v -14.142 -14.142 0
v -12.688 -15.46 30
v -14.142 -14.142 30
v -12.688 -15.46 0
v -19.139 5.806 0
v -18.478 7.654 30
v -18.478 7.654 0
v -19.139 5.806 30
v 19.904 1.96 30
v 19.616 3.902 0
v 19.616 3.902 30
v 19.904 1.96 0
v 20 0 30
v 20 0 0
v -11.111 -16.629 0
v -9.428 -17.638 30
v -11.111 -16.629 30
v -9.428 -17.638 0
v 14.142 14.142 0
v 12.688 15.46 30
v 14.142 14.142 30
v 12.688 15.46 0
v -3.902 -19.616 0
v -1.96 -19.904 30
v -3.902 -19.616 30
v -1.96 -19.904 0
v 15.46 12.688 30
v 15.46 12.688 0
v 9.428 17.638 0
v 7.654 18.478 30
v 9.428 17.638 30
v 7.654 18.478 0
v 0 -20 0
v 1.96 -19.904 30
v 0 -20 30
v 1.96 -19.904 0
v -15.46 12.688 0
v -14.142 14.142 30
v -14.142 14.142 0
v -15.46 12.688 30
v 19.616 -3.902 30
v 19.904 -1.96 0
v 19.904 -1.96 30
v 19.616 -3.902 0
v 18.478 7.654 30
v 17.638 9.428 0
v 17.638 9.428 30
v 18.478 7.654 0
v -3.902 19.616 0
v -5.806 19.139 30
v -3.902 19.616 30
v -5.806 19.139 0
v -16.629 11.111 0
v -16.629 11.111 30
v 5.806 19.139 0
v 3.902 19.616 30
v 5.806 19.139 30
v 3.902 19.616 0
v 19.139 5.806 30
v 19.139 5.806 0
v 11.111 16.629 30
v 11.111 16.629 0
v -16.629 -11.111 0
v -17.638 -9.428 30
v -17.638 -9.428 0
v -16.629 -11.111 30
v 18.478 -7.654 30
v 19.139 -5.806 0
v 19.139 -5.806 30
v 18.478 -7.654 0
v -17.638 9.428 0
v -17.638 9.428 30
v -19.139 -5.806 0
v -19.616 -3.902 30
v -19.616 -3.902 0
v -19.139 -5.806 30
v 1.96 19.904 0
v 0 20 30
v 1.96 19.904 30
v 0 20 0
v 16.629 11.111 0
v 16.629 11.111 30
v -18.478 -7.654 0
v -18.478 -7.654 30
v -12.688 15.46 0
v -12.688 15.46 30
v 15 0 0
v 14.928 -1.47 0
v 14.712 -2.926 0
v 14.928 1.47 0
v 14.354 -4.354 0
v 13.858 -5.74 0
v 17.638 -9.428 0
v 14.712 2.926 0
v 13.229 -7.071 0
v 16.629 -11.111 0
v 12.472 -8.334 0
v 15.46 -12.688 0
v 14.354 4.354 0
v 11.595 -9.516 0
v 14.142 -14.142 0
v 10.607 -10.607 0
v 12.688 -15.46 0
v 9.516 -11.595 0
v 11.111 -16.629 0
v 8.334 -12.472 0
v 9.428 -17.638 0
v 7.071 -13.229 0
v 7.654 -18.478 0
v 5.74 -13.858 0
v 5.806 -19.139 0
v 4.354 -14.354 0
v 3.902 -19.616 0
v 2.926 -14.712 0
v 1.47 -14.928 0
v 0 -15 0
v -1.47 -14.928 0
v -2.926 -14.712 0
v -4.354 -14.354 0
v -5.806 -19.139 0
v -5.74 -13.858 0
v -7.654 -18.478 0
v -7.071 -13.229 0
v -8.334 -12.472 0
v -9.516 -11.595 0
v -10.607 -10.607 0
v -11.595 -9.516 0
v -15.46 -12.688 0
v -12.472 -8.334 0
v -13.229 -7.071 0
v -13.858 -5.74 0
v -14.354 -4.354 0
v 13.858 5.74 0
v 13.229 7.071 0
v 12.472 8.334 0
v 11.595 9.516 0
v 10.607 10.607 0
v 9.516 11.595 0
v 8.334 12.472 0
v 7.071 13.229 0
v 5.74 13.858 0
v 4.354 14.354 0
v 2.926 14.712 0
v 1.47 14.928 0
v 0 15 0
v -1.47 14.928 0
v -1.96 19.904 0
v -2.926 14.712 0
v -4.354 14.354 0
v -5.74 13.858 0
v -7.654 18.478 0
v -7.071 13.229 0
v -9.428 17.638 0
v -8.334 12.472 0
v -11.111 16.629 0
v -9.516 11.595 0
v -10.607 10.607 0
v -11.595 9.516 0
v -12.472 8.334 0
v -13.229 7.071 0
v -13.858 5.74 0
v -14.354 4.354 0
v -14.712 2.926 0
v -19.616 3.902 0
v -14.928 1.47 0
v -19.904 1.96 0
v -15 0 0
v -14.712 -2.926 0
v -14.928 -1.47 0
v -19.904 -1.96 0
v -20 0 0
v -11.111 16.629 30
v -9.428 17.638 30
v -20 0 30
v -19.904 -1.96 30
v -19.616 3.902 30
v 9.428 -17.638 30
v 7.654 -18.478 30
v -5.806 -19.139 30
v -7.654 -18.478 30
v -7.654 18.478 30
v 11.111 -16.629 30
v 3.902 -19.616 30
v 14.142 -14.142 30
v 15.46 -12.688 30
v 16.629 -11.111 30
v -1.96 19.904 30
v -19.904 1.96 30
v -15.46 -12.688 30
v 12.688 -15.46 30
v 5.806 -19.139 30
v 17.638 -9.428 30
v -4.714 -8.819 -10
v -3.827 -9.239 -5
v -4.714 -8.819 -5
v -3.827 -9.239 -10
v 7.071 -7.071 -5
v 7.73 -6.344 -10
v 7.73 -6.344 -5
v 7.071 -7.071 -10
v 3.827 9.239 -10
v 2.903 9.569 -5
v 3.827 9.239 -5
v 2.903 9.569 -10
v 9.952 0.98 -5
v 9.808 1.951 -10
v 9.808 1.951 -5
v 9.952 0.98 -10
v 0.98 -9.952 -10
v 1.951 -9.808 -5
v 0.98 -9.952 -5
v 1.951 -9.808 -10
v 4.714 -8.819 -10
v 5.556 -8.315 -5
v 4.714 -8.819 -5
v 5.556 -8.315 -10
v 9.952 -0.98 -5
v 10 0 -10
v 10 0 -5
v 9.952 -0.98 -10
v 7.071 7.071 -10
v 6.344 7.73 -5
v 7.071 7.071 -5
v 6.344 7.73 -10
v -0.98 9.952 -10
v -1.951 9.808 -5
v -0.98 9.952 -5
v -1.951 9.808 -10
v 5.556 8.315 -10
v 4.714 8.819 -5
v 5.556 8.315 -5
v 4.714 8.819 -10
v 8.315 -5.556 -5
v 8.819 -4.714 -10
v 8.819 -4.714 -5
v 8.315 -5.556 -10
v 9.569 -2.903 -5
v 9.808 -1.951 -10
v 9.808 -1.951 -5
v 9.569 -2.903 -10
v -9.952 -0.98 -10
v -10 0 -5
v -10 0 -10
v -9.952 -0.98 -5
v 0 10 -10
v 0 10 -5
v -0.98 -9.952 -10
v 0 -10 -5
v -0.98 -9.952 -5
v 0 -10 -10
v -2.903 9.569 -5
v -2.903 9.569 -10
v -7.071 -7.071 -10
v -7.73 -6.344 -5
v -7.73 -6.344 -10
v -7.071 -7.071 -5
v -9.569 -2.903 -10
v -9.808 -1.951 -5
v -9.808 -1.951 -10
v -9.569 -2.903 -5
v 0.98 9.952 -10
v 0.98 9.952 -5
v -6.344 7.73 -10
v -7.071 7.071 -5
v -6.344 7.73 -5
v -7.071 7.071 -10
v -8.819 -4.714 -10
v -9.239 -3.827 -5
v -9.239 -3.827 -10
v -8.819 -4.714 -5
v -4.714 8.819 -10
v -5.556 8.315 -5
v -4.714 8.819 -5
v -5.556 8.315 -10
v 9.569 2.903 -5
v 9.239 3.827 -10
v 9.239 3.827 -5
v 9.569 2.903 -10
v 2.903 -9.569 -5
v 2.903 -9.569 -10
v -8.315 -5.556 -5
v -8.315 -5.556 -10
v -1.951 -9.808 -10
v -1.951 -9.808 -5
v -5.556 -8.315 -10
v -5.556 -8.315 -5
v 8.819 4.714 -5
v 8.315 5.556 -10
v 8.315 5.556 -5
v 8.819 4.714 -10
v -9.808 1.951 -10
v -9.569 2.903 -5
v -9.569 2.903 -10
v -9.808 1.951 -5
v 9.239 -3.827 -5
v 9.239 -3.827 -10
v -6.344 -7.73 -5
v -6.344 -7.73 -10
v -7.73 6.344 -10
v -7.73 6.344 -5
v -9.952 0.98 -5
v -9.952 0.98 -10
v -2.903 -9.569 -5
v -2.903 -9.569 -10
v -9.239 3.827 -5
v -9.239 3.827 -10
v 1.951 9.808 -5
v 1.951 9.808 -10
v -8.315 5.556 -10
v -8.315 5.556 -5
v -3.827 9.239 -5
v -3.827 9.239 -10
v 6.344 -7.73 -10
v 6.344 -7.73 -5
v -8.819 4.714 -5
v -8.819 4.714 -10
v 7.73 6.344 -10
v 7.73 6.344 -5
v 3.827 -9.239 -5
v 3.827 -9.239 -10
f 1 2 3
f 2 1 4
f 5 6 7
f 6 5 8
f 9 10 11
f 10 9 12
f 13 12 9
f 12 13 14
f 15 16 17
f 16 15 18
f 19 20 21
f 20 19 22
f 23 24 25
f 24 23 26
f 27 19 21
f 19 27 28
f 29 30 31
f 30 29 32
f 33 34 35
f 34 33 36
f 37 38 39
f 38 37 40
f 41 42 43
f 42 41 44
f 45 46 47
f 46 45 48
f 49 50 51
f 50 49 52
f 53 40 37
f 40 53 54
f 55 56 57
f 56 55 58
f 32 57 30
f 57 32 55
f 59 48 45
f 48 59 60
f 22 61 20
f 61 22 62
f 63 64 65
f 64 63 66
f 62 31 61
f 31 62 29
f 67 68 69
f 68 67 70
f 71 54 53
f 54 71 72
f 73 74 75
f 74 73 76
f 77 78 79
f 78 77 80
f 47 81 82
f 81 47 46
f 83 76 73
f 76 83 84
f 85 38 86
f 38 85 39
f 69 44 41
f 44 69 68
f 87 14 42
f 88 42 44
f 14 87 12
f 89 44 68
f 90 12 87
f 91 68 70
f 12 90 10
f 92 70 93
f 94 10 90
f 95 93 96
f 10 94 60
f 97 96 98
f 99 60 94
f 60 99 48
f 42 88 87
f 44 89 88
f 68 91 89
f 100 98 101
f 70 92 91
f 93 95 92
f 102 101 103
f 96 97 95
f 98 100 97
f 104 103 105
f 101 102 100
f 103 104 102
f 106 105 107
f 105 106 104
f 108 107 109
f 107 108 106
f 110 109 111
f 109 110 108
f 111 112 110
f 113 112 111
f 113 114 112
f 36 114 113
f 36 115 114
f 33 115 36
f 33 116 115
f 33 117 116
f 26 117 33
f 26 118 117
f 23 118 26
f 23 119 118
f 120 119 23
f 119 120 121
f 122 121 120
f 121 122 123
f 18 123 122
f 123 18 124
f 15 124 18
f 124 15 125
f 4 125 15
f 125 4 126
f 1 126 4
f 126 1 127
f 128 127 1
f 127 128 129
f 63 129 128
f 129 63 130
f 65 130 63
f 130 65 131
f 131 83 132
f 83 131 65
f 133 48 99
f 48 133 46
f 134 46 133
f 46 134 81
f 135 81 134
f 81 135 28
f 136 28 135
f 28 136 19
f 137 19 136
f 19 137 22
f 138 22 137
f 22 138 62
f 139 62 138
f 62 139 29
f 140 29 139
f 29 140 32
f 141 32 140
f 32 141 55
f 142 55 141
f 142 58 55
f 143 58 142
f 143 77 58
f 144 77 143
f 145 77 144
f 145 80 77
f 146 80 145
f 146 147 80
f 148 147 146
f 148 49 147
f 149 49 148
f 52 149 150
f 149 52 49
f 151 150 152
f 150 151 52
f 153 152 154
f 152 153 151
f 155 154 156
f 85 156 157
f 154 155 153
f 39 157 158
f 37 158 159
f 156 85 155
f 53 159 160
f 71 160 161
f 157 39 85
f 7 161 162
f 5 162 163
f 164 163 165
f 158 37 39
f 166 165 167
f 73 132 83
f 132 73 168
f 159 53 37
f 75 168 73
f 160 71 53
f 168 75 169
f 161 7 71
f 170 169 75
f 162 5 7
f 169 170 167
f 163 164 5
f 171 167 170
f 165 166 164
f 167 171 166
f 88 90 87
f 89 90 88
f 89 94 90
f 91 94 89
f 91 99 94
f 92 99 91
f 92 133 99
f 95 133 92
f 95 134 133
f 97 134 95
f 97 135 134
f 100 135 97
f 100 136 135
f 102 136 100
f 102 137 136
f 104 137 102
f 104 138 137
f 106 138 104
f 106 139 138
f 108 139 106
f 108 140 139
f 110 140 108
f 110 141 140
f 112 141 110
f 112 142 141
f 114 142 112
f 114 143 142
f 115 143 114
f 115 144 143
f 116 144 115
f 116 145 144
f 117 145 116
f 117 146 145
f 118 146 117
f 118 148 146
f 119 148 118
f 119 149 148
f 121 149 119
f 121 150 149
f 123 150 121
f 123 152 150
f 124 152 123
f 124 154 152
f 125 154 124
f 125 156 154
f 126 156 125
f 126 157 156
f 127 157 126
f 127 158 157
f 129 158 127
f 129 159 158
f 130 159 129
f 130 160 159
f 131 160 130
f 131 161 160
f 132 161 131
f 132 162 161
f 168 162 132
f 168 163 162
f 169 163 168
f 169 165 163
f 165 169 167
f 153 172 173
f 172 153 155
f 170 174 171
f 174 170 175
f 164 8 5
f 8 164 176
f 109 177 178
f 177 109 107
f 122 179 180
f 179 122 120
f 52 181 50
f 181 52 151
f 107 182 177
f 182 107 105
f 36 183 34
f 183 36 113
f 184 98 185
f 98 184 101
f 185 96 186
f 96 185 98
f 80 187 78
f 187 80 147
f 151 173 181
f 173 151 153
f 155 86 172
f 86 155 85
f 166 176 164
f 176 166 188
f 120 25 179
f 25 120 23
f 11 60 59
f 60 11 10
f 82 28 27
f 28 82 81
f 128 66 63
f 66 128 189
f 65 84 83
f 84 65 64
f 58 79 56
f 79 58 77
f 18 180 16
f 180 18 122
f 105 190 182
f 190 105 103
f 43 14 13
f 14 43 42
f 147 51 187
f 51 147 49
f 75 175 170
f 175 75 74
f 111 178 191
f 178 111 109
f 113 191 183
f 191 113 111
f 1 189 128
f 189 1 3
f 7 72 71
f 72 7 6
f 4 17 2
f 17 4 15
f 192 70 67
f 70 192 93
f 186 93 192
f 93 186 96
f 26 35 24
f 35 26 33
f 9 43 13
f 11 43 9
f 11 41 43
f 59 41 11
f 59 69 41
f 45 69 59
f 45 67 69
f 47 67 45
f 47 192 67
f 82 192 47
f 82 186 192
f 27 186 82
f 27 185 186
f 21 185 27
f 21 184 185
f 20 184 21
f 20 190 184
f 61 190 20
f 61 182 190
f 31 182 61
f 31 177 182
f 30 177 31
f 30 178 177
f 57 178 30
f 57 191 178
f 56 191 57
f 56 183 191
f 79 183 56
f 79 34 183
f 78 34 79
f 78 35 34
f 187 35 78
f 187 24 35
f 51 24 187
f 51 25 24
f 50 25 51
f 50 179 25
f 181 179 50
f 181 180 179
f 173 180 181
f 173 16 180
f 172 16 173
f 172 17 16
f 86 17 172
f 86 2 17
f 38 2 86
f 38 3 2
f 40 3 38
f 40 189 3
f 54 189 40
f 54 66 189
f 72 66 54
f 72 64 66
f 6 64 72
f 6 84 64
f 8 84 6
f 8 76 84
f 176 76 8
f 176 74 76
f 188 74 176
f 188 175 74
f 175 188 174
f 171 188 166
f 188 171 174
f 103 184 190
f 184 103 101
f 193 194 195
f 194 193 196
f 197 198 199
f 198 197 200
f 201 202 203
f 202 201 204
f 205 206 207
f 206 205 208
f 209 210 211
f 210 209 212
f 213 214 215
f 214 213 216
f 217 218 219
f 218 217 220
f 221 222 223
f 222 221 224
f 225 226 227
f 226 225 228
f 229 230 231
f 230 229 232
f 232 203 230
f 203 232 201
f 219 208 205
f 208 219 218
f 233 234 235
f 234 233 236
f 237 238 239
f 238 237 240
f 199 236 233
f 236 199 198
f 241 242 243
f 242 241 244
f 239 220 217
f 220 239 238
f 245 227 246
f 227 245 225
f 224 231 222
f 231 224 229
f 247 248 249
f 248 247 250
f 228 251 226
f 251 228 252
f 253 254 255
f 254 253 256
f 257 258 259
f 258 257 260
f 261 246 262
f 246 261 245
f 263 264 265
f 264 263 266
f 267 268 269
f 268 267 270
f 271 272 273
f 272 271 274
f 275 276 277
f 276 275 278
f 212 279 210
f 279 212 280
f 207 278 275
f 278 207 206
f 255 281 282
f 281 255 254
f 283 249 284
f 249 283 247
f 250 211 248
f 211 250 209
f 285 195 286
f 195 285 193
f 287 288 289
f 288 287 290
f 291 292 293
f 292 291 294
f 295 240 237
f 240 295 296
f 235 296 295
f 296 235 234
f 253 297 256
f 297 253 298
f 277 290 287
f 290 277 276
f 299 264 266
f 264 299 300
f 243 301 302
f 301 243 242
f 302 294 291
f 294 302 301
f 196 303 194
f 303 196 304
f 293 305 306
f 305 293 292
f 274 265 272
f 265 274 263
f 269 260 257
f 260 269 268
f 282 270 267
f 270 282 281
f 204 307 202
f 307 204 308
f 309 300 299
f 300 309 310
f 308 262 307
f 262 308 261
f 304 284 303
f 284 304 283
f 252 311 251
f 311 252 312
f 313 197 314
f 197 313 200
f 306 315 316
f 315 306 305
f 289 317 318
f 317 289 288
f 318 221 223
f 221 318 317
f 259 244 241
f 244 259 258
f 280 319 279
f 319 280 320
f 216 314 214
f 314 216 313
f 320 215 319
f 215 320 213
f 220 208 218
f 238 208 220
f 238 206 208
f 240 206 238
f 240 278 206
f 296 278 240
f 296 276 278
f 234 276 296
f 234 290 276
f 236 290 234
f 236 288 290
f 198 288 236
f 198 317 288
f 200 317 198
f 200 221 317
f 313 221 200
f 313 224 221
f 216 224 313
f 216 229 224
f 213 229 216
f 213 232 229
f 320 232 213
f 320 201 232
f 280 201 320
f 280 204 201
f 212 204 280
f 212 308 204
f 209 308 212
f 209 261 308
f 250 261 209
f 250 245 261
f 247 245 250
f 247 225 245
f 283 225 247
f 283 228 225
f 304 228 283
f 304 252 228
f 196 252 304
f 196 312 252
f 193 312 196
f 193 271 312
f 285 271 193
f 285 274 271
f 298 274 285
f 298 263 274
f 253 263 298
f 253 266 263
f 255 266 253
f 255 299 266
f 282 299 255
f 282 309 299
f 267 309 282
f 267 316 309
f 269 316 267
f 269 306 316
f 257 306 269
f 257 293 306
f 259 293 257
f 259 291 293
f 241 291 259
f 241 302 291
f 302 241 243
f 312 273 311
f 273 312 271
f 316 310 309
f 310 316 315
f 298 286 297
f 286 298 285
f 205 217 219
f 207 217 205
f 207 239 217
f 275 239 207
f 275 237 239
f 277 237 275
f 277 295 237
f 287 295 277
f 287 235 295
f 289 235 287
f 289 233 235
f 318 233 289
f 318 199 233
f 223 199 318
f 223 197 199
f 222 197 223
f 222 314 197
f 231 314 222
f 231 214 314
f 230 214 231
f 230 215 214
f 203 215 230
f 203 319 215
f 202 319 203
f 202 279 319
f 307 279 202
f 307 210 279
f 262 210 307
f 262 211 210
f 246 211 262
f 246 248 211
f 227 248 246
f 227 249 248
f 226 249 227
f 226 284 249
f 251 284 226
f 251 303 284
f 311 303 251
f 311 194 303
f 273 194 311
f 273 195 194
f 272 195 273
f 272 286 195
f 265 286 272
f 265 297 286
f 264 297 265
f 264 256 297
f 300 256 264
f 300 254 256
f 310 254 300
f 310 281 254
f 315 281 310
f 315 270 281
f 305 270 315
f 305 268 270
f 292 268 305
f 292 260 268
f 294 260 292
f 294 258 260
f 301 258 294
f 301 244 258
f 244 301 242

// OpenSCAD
// Parameters
large_diameter = 40;
large_height = 30;

small_diameter = 20;
small_height = 10;

cavity_depth = 5;
cavity_diameter = 30;

module stepped_cylinder_shaft() {
    difference() {
        // Main body: large cylinder + small bottom cylinder
        union() {
            // Large top cylinder
            cylinder(h = large_height, d = large_diameter, $fn=64);
            
            // Small bottom cylinder
            translate([0, 0, -small_height])
                cylinder(h = small_height, d = small_diameter, $fn=64);
        }

        // Recessed cavity in the bottom of the large cylinder
        translate([0, 0, -cavity_depth])
            cylinder(h = cavity_depth, d = cavity_diameter, $fn=64);
    }
}

// Render the model
stepped_cylinder_shaft();
